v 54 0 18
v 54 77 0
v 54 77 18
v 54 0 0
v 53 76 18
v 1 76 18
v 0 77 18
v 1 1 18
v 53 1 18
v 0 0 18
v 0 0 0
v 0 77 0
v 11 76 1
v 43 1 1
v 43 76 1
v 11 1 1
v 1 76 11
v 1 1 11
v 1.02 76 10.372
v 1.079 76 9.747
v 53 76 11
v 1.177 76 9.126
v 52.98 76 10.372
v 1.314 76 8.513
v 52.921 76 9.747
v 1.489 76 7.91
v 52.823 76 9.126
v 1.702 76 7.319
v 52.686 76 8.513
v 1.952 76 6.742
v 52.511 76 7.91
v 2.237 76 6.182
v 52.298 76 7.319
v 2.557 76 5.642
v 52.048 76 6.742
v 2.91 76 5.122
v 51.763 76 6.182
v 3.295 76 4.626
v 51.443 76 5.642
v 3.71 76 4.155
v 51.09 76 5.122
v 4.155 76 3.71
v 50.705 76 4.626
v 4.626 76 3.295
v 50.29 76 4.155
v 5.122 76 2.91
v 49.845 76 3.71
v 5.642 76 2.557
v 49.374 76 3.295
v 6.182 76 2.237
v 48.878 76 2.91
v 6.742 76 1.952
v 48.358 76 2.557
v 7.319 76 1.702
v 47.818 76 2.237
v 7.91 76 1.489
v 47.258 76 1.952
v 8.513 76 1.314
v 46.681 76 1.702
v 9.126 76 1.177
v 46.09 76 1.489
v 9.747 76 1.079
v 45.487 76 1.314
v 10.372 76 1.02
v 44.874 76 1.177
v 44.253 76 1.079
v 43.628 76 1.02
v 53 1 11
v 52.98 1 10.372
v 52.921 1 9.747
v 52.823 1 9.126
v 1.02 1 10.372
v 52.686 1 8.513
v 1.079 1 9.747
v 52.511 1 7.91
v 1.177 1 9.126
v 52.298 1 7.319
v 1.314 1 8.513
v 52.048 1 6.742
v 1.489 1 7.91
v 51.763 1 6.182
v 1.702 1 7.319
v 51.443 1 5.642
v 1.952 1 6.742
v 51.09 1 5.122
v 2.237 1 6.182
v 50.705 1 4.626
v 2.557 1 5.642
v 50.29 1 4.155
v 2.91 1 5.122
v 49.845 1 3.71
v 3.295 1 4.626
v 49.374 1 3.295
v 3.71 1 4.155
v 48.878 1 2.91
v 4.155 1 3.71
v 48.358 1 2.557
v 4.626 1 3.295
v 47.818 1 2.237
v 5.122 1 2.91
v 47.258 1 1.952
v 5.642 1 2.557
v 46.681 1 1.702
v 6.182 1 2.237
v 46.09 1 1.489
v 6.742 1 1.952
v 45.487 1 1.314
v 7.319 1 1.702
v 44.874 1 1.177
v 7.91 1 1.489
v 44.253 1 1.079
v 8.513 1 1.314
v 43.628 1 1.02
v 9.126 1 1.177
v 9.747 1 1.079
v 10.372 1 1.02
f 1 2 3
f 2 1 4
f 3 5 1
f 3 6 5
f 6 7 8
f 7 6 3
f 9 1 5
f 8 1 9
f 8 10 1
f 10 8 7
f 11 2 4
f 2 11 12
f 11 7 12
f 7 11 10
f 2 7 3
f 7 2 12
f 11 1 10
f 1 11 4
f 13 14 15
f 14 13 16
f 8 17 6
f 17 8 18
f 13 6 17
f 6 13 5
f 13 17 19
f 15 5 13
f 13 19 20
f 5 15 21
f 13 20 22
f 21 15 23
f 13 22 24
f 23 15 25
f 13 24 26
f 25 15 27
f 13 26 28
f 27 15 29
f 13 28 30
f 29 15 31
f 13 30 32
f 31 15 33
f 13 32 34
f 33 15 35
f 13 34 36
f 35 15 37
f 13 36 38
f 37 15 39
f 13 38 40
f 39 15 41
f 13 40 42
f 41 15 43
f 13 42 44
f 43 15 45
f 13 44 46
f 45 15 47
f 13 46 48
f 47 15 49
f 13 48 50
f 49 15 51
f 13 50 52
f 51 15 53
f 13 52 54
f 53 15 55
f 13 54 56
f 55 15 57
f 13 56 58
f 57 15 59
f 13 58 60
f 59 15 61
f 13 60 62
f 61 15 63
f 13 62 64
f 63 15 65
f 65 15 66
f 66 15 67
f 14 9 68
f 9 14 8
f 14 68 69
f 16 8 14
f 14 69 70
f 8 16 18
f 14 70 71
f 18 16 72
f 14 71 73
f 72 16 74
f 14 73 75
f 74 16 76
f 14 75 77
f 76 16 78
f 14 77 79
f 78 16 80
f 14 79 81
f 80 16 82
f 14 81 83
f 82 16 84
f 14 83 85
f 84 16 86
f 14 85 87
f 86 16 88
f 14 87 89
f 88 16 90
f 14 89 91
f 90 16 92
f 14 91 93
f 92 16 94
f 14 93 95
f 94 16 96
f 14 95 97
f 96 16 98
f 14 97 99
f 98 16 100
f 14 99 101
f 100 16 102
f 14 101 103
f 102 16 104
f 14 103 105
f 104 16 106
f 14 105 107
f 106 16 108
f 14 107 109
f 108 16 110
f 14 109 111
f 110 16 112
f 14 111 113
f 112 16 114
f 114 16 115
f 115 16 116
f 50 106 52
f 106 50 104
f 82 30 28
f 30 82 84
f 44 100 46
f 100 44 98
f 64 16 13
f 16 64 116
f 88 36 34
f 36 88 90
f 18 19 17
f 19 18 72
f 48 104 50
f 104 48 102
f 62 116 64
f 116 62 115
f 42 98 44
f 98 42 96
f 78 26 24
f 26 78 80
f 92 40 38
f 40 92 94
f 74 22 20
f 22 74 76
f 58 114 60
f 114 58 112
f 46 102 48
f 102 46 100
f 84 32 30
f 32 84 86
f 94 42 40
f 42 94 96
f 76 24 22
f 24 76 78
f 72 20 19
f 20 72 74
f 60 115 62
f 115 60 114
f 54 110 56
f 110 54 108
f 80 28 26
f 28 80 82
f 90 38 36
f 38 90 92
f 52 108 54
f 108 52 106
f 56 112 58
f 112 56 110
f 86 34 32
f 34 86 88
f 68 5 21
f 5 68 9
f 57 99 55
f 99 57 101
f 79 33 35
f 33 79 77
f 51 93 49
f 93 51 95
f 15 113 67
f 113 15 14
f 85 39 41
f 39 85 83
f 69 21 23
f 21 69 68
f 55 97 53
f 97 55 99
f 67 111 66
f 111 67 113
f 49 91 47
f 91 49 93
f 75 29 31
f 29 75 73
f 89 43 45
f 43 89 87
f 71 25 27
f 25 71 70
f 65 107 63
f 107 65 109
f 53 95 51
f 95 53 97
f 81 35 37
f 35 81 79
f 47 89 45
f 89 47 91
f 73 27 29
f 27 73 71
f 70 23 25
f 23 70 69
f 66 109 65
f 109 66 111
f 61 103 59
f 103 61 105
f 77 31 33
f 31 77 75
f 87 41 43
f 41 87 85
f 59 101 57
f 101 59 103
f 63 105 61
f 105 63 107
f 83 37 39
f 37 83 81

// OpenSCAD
include <boardgame_insert_toolkit_lib.2.scad>;

// determines whether lids are output.
g_b_print_lid = true;

// determines whether boxes are output.
g_b_print_box = true; 

// Focus on one box
g_isolated_print_box = ""; 

// Used to visualize how all of the boxes fit together. 
g_b_visualization = false;          
        
// this is the outer wall thickness. 
//Default = 1.5mm
g_wall_thickness = 1.0;

// The tolerance value is extra space put between planes of the lid and box that fit together.
// Increase the tolerance to loosen the fit and decrease it to tighten it.
//
// Note that the tolerance is applied exclusively to the lid.
// So if the lid is too tight or too loose, change this value ( up for looser fit, down for tighter fit ) and 
// you only need to reprint the lid.
// 
// The exception is the stackable box, where the bottom of the box is the lid of the box below,
// in which case the tolerance also affects that box bottom.
//
g_tolerance = 0.15;

// This adjusts the position of the lid detents downward. 
// The larger the value, the bigger the gap between the lid and the box.
g_tolerance_detents_pos = 0.1;

aw_size_x = 54.0;
aw_size_y = 77.0;
aw_size_z = 18.0;


data =
  [
    [
      "simple box",
      [
        [ BOX_SIZE_XYZ, [aw_size_x, aw_size_y, aw_size_z] ],
        [ BOX_NO_LID_B, t],
        [
          BOX_COMPONENT,
          [
            [
              CMP_COMPARTMENT_SIZE_XYZ,
              [
                (aw_size_x - 2.0),
                (aw_size_y - 2.0),
                aw_size_z - g_wall_thickness
              ]
            ],
            [ CMP_NUM_COMPARTMENTS_XY, [1, 1] ],
            [ POSITION_XY, [0, 0] ],
            //[ CMP_CUTOUT_SIDES_4B,   [t,f,f,f]],
            //[ CMP_CUTOUT_DEPTH_PCT,  20],
            //[ CMP_CUTOUT_WIDTH_PCT,  50],
            //[ CMP_CUTOUT_HEIGHT_PCT, 100], 
            //[ CMP_SHAPE_ROTATED_B, t ],
            [ CMP_SHAPE, FILLET ],
            //[ CMP_FILLET_RADIUS, 5.0 ],
          ]
        ],
      ]
    ]
  ];

MakeAll();
